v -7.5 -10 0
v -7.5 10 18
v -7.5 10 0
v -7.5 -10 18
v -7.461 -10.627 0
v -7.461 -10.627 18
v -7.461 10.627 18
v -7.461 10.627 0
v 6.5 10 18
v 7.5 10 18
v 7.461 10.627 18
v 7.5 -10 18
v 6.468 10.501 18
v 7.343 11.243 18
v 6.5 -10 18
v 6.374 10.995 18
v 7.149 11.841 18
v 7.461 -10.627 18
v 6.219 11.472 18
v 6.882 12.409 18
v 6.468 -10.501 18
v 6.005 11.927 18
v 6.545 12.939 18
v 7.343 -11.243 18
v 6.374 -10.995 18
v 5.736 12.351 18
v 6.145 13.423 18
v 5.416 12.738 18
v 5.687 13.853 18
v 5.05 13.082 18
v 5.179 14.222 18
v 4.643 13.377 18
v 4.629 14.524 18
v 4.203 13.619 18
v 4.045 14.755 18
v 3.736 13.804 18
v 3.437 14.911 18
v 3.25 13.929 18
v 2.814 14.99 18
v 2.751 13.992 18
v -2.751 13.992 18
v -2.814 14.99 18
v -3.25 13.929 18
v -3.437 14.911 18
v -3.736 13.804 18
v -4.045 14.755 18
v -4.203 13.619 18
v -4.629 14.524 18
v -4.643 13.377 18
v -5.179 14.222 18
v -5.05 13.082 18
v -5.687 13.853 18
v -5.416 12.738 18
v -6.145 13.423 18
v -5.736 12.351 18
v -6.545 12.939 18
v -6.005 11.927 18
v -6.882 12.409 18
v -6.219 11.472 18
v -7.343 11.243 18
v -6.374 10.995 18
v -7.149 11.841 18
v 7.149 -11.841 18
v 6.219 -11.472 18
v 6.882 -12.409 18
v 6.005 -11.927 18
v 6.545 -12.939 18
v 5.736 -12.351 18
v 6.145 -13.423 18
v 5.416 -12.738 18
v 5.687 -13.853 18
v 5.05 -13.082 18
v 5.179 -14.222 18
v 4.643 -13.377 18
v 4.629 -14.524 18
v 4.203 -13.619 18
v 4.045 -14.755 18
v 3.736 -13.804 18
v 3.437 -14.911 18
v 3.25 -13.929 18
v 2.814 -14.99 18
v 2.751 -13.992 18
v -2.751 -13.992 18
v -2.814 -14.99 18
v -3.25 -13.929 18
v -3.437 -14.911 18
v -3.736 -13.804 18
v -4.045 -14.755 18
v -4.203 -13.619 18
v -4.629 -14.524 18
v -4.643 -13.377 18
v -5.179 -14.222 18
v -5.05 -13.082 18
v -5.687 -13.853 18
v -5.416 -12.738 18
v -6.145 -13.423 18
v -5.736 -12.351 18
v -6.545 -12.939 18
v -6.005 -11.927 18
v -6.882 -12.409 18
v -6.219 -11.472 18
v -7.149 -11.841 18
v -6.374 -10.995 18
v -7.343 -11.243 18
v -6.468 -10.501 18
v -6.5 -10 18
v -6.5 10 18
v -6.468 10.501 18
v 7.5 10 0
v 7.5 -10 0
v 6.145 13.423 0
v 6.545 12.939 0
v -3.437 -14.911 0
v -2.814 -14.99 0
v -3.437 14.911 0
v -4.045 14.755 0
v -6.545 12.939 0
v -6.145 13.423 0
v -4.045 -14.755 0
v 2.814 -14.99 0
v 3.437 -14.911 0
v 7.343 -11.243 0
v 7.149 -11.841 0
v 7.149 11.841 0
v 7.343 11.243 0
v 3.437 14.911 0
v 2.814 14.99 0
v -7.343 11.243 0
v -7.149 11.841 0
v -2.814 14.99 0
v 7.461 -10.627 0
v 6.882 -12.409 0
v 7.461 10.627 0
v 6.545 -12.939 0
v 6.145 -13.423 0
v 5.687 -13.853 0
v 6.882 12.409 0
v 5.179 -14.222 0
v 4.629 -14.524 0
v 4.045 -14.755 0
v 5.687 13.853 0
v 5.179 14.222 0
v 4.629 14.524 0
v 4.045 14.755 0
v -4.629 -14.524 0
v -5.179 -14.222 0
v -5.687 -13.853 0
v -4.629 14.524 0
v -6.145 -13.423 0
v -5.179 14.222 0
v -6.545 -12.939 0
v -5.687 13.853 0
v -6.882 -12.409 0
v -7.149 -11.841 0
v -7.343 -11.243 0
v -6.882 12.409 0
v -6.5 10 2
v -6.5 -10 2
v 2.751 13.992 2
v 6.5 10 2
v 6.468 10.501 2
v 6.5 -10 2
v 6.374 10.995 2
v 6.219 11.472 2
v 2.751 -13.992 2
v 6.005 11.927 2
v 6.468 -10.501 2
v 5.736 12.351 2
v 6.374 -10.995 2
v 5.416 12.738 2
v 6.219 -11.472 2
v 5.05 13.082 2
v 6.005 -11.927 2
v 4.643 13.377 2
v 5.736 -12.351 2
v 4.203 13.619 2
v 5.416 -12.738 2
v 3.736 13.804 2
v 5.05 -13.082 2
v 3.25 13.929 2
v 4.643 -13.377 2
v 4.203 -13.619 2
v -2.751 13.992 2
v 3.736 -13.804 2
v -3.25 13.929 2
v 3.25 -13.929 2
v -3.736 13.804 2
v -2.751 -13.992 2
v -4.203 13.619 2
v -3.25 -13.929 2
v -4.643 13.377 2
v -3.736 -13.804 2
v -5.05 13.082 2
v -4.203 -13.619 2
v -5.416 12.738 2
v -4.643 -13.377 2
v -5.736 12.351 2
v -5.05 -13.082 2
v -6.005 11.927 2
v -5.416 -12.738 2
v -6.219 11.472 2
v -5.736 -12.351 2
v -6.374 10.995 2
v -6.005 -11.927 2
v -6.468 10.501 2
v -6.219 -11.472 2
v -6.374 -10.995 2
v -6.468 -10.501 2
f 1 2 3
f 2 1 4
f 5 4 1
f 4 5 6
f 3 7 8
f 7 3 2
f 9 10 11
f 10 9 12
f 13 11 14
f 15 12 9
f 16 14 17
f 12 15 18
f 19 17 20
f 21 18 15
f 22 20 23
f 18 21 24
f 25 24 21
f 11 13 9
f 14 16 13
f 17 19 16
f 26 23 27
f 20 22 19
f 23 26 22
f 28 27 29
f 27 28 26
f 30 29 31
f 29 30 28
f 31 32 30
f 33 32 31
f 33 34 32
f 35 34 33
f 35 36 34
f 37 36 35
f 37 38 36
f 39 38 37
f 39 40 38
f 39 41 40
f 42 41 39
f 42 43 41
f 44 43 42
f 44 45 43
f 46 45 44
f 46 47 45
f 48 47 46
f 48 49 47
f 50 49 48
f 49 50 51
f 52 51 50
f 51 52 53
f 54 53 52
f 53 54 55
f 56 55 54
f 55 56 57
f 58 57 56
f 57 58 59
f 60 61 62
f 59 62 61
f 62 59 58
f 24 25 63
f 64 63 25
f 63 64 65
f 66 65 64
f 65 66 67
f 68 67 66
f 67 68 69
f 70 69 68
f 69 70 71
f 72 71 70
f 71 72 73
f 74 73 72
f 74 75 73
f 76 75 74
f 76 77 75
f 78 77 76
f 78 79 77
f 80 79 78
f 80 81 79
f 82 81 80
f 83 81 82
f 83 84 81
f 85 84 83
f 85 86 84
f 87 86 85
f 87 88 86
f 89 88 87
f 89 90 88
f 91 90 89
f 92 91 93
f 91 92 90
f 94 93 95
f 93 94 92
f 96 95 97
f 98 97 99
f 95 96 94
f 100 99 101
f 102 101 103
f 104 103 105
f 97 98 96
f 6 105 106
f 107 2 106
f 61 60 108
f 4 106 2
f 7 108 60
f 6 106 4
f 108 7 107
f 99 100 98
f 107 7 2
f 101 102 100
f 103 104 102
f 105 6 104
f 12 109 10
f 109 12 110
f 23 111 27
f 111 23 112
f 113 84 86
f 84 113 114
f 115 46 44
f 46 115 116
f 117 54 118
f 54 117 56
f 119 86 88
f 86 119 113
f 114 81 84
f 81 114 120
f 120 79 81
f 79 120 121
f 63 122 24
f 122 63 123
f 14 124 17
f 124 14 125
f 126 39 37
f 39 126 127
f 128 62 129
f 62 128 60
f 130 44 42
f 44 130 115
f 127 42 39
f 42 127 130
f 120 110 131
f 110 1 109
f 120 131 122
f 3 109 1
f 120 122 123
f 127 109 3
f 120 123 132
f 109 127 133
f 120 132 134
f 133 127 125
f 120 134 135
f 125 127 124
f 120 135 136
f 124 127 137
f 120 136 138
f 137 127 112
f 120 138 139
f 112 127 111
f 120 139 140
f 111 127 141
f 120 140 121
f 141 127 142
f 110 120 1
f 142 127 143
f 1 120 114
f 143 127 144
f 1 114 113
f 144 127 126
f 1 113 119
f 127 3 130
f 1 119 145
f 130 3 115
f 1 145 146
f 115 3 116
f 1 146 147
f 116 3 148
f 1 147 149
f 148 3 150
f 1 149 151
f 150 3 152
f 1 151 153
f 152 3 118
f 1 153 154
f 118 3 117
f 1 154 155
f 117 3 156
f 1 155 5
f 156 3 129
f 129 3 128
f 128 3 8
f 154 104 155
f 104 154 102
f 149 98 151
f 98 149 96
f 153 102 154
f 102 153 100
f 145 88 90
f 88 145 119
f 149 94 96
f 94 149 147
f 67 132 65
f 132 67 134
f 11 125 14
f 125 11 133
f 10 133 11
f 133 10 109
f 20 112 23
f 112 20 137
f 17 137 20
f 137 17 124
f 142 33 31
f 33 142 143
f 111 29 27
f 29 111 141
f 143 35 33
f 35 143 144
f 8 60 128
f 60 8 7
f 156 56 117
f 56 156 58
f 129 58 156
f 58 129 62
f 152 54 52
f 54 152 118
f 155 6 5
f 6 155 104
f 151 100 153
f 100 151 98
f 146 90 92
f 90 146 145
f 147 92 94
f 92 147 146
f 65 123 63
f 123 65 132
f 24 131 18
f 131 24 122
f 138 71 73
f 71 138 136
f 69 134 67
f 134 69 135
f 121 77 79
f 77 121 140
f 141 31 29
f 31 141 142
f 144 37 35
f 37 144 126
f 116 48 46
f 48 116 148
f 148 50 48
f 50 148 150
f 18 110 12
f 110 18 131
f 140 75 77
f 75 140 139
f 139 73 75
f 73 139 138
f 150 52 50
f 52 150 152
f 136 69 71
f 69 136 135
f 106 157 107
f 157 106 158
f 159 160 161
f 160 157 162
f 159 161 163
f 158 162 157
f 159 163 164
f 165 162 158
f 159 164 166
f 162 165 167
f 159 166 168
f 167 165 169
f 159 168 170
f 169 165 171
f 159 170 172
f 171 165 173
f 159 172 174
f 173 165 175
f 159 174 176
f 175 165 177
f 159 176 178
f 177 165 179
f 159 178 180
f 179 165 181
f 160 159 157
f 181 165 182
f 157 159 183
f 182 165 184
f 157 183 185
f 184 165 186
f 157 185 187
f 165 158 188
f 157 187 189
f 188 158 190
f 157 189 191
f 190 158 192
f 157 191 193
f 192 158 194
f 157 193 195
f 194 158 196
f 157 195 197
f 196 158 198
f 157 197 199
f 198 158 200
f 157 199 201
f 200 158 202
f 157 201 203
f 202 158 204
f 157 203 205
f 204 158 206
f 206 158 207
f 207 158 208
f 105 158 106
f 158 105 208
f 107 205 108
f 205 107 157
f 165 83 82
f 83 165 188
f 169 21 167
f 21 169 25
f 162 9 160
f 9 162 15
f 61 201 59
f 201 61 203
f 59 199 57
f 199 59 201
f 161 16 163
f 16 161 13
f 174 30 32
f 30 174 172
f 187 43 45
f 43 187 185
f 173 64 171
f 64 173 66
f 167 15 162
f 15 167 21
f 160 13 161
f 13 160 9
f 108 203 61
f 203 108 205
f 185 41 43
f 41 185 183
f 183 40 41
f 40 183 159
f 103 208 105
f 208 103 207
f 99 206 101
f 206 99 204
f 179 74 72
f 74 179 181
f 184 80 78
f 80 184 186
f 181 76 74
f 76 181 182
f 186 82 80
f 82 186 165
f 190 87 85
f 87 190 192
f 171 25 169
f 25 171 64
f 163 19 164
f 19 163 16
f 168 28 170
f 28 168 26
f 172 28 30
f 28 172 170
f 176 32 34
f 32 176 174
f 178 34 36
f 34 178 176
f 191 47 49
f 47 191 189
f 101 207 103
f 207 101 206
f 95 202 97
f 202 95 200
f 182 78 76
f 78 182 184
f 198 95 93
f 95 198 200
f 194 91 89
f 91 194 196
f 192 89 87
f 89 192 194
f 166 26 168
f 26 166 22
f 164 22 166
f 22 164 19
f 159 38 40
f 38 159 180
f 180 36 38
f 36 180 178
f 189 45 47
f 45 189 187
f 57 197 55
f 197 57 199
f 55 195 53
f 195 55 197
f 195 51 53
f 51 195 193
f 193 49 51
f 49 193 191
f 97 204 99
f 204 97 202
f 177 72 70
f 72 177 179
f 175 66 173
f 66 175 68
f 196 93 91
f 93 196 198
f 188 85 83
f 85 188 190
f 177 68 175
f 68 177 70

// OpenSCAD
$fn = 50;


difference() {
	union() {
		hull() {
			translate(v = [-2.5000000000, 10.0000000000, 0]) {
				cylinder(h = 18, r = 5);
			}
			translate(v = [2.5000000000, 10.0000000000, 0]) {
				cylinder(h = 18, r = 5);
			}
			translate(v = [-2.5000000000, -10.0000000000, 0]) {
				cylinder(h = 18, r = 5);
			}
			translate(v = [2.5000000000, -10.0000000000, 0]) {
				cylinder(h = 18, r = 5);
			}
		}
	}
	union() {
		translate(v = [0, 0, 2]) {
			hull() {
				translate(v = [-2.5000000000, 10.0000000000, 0]) {
					cylinder(h = 16, r = 4);
				}
				translate(v = [2.5000000000, 10.0000000000, 0]) {
					cylinder(h = 16, r = 4);
				}
				translate(v = [-2.5000000000, -10.0000000000, 0]) {
					cylinder(h = 16, r = 4);
				}
				translate(v = [2.5000000000, -10.0000000000, 0]) {
					cylinder(h = 16, r = 4);
				}
			}
		}
	}
}
